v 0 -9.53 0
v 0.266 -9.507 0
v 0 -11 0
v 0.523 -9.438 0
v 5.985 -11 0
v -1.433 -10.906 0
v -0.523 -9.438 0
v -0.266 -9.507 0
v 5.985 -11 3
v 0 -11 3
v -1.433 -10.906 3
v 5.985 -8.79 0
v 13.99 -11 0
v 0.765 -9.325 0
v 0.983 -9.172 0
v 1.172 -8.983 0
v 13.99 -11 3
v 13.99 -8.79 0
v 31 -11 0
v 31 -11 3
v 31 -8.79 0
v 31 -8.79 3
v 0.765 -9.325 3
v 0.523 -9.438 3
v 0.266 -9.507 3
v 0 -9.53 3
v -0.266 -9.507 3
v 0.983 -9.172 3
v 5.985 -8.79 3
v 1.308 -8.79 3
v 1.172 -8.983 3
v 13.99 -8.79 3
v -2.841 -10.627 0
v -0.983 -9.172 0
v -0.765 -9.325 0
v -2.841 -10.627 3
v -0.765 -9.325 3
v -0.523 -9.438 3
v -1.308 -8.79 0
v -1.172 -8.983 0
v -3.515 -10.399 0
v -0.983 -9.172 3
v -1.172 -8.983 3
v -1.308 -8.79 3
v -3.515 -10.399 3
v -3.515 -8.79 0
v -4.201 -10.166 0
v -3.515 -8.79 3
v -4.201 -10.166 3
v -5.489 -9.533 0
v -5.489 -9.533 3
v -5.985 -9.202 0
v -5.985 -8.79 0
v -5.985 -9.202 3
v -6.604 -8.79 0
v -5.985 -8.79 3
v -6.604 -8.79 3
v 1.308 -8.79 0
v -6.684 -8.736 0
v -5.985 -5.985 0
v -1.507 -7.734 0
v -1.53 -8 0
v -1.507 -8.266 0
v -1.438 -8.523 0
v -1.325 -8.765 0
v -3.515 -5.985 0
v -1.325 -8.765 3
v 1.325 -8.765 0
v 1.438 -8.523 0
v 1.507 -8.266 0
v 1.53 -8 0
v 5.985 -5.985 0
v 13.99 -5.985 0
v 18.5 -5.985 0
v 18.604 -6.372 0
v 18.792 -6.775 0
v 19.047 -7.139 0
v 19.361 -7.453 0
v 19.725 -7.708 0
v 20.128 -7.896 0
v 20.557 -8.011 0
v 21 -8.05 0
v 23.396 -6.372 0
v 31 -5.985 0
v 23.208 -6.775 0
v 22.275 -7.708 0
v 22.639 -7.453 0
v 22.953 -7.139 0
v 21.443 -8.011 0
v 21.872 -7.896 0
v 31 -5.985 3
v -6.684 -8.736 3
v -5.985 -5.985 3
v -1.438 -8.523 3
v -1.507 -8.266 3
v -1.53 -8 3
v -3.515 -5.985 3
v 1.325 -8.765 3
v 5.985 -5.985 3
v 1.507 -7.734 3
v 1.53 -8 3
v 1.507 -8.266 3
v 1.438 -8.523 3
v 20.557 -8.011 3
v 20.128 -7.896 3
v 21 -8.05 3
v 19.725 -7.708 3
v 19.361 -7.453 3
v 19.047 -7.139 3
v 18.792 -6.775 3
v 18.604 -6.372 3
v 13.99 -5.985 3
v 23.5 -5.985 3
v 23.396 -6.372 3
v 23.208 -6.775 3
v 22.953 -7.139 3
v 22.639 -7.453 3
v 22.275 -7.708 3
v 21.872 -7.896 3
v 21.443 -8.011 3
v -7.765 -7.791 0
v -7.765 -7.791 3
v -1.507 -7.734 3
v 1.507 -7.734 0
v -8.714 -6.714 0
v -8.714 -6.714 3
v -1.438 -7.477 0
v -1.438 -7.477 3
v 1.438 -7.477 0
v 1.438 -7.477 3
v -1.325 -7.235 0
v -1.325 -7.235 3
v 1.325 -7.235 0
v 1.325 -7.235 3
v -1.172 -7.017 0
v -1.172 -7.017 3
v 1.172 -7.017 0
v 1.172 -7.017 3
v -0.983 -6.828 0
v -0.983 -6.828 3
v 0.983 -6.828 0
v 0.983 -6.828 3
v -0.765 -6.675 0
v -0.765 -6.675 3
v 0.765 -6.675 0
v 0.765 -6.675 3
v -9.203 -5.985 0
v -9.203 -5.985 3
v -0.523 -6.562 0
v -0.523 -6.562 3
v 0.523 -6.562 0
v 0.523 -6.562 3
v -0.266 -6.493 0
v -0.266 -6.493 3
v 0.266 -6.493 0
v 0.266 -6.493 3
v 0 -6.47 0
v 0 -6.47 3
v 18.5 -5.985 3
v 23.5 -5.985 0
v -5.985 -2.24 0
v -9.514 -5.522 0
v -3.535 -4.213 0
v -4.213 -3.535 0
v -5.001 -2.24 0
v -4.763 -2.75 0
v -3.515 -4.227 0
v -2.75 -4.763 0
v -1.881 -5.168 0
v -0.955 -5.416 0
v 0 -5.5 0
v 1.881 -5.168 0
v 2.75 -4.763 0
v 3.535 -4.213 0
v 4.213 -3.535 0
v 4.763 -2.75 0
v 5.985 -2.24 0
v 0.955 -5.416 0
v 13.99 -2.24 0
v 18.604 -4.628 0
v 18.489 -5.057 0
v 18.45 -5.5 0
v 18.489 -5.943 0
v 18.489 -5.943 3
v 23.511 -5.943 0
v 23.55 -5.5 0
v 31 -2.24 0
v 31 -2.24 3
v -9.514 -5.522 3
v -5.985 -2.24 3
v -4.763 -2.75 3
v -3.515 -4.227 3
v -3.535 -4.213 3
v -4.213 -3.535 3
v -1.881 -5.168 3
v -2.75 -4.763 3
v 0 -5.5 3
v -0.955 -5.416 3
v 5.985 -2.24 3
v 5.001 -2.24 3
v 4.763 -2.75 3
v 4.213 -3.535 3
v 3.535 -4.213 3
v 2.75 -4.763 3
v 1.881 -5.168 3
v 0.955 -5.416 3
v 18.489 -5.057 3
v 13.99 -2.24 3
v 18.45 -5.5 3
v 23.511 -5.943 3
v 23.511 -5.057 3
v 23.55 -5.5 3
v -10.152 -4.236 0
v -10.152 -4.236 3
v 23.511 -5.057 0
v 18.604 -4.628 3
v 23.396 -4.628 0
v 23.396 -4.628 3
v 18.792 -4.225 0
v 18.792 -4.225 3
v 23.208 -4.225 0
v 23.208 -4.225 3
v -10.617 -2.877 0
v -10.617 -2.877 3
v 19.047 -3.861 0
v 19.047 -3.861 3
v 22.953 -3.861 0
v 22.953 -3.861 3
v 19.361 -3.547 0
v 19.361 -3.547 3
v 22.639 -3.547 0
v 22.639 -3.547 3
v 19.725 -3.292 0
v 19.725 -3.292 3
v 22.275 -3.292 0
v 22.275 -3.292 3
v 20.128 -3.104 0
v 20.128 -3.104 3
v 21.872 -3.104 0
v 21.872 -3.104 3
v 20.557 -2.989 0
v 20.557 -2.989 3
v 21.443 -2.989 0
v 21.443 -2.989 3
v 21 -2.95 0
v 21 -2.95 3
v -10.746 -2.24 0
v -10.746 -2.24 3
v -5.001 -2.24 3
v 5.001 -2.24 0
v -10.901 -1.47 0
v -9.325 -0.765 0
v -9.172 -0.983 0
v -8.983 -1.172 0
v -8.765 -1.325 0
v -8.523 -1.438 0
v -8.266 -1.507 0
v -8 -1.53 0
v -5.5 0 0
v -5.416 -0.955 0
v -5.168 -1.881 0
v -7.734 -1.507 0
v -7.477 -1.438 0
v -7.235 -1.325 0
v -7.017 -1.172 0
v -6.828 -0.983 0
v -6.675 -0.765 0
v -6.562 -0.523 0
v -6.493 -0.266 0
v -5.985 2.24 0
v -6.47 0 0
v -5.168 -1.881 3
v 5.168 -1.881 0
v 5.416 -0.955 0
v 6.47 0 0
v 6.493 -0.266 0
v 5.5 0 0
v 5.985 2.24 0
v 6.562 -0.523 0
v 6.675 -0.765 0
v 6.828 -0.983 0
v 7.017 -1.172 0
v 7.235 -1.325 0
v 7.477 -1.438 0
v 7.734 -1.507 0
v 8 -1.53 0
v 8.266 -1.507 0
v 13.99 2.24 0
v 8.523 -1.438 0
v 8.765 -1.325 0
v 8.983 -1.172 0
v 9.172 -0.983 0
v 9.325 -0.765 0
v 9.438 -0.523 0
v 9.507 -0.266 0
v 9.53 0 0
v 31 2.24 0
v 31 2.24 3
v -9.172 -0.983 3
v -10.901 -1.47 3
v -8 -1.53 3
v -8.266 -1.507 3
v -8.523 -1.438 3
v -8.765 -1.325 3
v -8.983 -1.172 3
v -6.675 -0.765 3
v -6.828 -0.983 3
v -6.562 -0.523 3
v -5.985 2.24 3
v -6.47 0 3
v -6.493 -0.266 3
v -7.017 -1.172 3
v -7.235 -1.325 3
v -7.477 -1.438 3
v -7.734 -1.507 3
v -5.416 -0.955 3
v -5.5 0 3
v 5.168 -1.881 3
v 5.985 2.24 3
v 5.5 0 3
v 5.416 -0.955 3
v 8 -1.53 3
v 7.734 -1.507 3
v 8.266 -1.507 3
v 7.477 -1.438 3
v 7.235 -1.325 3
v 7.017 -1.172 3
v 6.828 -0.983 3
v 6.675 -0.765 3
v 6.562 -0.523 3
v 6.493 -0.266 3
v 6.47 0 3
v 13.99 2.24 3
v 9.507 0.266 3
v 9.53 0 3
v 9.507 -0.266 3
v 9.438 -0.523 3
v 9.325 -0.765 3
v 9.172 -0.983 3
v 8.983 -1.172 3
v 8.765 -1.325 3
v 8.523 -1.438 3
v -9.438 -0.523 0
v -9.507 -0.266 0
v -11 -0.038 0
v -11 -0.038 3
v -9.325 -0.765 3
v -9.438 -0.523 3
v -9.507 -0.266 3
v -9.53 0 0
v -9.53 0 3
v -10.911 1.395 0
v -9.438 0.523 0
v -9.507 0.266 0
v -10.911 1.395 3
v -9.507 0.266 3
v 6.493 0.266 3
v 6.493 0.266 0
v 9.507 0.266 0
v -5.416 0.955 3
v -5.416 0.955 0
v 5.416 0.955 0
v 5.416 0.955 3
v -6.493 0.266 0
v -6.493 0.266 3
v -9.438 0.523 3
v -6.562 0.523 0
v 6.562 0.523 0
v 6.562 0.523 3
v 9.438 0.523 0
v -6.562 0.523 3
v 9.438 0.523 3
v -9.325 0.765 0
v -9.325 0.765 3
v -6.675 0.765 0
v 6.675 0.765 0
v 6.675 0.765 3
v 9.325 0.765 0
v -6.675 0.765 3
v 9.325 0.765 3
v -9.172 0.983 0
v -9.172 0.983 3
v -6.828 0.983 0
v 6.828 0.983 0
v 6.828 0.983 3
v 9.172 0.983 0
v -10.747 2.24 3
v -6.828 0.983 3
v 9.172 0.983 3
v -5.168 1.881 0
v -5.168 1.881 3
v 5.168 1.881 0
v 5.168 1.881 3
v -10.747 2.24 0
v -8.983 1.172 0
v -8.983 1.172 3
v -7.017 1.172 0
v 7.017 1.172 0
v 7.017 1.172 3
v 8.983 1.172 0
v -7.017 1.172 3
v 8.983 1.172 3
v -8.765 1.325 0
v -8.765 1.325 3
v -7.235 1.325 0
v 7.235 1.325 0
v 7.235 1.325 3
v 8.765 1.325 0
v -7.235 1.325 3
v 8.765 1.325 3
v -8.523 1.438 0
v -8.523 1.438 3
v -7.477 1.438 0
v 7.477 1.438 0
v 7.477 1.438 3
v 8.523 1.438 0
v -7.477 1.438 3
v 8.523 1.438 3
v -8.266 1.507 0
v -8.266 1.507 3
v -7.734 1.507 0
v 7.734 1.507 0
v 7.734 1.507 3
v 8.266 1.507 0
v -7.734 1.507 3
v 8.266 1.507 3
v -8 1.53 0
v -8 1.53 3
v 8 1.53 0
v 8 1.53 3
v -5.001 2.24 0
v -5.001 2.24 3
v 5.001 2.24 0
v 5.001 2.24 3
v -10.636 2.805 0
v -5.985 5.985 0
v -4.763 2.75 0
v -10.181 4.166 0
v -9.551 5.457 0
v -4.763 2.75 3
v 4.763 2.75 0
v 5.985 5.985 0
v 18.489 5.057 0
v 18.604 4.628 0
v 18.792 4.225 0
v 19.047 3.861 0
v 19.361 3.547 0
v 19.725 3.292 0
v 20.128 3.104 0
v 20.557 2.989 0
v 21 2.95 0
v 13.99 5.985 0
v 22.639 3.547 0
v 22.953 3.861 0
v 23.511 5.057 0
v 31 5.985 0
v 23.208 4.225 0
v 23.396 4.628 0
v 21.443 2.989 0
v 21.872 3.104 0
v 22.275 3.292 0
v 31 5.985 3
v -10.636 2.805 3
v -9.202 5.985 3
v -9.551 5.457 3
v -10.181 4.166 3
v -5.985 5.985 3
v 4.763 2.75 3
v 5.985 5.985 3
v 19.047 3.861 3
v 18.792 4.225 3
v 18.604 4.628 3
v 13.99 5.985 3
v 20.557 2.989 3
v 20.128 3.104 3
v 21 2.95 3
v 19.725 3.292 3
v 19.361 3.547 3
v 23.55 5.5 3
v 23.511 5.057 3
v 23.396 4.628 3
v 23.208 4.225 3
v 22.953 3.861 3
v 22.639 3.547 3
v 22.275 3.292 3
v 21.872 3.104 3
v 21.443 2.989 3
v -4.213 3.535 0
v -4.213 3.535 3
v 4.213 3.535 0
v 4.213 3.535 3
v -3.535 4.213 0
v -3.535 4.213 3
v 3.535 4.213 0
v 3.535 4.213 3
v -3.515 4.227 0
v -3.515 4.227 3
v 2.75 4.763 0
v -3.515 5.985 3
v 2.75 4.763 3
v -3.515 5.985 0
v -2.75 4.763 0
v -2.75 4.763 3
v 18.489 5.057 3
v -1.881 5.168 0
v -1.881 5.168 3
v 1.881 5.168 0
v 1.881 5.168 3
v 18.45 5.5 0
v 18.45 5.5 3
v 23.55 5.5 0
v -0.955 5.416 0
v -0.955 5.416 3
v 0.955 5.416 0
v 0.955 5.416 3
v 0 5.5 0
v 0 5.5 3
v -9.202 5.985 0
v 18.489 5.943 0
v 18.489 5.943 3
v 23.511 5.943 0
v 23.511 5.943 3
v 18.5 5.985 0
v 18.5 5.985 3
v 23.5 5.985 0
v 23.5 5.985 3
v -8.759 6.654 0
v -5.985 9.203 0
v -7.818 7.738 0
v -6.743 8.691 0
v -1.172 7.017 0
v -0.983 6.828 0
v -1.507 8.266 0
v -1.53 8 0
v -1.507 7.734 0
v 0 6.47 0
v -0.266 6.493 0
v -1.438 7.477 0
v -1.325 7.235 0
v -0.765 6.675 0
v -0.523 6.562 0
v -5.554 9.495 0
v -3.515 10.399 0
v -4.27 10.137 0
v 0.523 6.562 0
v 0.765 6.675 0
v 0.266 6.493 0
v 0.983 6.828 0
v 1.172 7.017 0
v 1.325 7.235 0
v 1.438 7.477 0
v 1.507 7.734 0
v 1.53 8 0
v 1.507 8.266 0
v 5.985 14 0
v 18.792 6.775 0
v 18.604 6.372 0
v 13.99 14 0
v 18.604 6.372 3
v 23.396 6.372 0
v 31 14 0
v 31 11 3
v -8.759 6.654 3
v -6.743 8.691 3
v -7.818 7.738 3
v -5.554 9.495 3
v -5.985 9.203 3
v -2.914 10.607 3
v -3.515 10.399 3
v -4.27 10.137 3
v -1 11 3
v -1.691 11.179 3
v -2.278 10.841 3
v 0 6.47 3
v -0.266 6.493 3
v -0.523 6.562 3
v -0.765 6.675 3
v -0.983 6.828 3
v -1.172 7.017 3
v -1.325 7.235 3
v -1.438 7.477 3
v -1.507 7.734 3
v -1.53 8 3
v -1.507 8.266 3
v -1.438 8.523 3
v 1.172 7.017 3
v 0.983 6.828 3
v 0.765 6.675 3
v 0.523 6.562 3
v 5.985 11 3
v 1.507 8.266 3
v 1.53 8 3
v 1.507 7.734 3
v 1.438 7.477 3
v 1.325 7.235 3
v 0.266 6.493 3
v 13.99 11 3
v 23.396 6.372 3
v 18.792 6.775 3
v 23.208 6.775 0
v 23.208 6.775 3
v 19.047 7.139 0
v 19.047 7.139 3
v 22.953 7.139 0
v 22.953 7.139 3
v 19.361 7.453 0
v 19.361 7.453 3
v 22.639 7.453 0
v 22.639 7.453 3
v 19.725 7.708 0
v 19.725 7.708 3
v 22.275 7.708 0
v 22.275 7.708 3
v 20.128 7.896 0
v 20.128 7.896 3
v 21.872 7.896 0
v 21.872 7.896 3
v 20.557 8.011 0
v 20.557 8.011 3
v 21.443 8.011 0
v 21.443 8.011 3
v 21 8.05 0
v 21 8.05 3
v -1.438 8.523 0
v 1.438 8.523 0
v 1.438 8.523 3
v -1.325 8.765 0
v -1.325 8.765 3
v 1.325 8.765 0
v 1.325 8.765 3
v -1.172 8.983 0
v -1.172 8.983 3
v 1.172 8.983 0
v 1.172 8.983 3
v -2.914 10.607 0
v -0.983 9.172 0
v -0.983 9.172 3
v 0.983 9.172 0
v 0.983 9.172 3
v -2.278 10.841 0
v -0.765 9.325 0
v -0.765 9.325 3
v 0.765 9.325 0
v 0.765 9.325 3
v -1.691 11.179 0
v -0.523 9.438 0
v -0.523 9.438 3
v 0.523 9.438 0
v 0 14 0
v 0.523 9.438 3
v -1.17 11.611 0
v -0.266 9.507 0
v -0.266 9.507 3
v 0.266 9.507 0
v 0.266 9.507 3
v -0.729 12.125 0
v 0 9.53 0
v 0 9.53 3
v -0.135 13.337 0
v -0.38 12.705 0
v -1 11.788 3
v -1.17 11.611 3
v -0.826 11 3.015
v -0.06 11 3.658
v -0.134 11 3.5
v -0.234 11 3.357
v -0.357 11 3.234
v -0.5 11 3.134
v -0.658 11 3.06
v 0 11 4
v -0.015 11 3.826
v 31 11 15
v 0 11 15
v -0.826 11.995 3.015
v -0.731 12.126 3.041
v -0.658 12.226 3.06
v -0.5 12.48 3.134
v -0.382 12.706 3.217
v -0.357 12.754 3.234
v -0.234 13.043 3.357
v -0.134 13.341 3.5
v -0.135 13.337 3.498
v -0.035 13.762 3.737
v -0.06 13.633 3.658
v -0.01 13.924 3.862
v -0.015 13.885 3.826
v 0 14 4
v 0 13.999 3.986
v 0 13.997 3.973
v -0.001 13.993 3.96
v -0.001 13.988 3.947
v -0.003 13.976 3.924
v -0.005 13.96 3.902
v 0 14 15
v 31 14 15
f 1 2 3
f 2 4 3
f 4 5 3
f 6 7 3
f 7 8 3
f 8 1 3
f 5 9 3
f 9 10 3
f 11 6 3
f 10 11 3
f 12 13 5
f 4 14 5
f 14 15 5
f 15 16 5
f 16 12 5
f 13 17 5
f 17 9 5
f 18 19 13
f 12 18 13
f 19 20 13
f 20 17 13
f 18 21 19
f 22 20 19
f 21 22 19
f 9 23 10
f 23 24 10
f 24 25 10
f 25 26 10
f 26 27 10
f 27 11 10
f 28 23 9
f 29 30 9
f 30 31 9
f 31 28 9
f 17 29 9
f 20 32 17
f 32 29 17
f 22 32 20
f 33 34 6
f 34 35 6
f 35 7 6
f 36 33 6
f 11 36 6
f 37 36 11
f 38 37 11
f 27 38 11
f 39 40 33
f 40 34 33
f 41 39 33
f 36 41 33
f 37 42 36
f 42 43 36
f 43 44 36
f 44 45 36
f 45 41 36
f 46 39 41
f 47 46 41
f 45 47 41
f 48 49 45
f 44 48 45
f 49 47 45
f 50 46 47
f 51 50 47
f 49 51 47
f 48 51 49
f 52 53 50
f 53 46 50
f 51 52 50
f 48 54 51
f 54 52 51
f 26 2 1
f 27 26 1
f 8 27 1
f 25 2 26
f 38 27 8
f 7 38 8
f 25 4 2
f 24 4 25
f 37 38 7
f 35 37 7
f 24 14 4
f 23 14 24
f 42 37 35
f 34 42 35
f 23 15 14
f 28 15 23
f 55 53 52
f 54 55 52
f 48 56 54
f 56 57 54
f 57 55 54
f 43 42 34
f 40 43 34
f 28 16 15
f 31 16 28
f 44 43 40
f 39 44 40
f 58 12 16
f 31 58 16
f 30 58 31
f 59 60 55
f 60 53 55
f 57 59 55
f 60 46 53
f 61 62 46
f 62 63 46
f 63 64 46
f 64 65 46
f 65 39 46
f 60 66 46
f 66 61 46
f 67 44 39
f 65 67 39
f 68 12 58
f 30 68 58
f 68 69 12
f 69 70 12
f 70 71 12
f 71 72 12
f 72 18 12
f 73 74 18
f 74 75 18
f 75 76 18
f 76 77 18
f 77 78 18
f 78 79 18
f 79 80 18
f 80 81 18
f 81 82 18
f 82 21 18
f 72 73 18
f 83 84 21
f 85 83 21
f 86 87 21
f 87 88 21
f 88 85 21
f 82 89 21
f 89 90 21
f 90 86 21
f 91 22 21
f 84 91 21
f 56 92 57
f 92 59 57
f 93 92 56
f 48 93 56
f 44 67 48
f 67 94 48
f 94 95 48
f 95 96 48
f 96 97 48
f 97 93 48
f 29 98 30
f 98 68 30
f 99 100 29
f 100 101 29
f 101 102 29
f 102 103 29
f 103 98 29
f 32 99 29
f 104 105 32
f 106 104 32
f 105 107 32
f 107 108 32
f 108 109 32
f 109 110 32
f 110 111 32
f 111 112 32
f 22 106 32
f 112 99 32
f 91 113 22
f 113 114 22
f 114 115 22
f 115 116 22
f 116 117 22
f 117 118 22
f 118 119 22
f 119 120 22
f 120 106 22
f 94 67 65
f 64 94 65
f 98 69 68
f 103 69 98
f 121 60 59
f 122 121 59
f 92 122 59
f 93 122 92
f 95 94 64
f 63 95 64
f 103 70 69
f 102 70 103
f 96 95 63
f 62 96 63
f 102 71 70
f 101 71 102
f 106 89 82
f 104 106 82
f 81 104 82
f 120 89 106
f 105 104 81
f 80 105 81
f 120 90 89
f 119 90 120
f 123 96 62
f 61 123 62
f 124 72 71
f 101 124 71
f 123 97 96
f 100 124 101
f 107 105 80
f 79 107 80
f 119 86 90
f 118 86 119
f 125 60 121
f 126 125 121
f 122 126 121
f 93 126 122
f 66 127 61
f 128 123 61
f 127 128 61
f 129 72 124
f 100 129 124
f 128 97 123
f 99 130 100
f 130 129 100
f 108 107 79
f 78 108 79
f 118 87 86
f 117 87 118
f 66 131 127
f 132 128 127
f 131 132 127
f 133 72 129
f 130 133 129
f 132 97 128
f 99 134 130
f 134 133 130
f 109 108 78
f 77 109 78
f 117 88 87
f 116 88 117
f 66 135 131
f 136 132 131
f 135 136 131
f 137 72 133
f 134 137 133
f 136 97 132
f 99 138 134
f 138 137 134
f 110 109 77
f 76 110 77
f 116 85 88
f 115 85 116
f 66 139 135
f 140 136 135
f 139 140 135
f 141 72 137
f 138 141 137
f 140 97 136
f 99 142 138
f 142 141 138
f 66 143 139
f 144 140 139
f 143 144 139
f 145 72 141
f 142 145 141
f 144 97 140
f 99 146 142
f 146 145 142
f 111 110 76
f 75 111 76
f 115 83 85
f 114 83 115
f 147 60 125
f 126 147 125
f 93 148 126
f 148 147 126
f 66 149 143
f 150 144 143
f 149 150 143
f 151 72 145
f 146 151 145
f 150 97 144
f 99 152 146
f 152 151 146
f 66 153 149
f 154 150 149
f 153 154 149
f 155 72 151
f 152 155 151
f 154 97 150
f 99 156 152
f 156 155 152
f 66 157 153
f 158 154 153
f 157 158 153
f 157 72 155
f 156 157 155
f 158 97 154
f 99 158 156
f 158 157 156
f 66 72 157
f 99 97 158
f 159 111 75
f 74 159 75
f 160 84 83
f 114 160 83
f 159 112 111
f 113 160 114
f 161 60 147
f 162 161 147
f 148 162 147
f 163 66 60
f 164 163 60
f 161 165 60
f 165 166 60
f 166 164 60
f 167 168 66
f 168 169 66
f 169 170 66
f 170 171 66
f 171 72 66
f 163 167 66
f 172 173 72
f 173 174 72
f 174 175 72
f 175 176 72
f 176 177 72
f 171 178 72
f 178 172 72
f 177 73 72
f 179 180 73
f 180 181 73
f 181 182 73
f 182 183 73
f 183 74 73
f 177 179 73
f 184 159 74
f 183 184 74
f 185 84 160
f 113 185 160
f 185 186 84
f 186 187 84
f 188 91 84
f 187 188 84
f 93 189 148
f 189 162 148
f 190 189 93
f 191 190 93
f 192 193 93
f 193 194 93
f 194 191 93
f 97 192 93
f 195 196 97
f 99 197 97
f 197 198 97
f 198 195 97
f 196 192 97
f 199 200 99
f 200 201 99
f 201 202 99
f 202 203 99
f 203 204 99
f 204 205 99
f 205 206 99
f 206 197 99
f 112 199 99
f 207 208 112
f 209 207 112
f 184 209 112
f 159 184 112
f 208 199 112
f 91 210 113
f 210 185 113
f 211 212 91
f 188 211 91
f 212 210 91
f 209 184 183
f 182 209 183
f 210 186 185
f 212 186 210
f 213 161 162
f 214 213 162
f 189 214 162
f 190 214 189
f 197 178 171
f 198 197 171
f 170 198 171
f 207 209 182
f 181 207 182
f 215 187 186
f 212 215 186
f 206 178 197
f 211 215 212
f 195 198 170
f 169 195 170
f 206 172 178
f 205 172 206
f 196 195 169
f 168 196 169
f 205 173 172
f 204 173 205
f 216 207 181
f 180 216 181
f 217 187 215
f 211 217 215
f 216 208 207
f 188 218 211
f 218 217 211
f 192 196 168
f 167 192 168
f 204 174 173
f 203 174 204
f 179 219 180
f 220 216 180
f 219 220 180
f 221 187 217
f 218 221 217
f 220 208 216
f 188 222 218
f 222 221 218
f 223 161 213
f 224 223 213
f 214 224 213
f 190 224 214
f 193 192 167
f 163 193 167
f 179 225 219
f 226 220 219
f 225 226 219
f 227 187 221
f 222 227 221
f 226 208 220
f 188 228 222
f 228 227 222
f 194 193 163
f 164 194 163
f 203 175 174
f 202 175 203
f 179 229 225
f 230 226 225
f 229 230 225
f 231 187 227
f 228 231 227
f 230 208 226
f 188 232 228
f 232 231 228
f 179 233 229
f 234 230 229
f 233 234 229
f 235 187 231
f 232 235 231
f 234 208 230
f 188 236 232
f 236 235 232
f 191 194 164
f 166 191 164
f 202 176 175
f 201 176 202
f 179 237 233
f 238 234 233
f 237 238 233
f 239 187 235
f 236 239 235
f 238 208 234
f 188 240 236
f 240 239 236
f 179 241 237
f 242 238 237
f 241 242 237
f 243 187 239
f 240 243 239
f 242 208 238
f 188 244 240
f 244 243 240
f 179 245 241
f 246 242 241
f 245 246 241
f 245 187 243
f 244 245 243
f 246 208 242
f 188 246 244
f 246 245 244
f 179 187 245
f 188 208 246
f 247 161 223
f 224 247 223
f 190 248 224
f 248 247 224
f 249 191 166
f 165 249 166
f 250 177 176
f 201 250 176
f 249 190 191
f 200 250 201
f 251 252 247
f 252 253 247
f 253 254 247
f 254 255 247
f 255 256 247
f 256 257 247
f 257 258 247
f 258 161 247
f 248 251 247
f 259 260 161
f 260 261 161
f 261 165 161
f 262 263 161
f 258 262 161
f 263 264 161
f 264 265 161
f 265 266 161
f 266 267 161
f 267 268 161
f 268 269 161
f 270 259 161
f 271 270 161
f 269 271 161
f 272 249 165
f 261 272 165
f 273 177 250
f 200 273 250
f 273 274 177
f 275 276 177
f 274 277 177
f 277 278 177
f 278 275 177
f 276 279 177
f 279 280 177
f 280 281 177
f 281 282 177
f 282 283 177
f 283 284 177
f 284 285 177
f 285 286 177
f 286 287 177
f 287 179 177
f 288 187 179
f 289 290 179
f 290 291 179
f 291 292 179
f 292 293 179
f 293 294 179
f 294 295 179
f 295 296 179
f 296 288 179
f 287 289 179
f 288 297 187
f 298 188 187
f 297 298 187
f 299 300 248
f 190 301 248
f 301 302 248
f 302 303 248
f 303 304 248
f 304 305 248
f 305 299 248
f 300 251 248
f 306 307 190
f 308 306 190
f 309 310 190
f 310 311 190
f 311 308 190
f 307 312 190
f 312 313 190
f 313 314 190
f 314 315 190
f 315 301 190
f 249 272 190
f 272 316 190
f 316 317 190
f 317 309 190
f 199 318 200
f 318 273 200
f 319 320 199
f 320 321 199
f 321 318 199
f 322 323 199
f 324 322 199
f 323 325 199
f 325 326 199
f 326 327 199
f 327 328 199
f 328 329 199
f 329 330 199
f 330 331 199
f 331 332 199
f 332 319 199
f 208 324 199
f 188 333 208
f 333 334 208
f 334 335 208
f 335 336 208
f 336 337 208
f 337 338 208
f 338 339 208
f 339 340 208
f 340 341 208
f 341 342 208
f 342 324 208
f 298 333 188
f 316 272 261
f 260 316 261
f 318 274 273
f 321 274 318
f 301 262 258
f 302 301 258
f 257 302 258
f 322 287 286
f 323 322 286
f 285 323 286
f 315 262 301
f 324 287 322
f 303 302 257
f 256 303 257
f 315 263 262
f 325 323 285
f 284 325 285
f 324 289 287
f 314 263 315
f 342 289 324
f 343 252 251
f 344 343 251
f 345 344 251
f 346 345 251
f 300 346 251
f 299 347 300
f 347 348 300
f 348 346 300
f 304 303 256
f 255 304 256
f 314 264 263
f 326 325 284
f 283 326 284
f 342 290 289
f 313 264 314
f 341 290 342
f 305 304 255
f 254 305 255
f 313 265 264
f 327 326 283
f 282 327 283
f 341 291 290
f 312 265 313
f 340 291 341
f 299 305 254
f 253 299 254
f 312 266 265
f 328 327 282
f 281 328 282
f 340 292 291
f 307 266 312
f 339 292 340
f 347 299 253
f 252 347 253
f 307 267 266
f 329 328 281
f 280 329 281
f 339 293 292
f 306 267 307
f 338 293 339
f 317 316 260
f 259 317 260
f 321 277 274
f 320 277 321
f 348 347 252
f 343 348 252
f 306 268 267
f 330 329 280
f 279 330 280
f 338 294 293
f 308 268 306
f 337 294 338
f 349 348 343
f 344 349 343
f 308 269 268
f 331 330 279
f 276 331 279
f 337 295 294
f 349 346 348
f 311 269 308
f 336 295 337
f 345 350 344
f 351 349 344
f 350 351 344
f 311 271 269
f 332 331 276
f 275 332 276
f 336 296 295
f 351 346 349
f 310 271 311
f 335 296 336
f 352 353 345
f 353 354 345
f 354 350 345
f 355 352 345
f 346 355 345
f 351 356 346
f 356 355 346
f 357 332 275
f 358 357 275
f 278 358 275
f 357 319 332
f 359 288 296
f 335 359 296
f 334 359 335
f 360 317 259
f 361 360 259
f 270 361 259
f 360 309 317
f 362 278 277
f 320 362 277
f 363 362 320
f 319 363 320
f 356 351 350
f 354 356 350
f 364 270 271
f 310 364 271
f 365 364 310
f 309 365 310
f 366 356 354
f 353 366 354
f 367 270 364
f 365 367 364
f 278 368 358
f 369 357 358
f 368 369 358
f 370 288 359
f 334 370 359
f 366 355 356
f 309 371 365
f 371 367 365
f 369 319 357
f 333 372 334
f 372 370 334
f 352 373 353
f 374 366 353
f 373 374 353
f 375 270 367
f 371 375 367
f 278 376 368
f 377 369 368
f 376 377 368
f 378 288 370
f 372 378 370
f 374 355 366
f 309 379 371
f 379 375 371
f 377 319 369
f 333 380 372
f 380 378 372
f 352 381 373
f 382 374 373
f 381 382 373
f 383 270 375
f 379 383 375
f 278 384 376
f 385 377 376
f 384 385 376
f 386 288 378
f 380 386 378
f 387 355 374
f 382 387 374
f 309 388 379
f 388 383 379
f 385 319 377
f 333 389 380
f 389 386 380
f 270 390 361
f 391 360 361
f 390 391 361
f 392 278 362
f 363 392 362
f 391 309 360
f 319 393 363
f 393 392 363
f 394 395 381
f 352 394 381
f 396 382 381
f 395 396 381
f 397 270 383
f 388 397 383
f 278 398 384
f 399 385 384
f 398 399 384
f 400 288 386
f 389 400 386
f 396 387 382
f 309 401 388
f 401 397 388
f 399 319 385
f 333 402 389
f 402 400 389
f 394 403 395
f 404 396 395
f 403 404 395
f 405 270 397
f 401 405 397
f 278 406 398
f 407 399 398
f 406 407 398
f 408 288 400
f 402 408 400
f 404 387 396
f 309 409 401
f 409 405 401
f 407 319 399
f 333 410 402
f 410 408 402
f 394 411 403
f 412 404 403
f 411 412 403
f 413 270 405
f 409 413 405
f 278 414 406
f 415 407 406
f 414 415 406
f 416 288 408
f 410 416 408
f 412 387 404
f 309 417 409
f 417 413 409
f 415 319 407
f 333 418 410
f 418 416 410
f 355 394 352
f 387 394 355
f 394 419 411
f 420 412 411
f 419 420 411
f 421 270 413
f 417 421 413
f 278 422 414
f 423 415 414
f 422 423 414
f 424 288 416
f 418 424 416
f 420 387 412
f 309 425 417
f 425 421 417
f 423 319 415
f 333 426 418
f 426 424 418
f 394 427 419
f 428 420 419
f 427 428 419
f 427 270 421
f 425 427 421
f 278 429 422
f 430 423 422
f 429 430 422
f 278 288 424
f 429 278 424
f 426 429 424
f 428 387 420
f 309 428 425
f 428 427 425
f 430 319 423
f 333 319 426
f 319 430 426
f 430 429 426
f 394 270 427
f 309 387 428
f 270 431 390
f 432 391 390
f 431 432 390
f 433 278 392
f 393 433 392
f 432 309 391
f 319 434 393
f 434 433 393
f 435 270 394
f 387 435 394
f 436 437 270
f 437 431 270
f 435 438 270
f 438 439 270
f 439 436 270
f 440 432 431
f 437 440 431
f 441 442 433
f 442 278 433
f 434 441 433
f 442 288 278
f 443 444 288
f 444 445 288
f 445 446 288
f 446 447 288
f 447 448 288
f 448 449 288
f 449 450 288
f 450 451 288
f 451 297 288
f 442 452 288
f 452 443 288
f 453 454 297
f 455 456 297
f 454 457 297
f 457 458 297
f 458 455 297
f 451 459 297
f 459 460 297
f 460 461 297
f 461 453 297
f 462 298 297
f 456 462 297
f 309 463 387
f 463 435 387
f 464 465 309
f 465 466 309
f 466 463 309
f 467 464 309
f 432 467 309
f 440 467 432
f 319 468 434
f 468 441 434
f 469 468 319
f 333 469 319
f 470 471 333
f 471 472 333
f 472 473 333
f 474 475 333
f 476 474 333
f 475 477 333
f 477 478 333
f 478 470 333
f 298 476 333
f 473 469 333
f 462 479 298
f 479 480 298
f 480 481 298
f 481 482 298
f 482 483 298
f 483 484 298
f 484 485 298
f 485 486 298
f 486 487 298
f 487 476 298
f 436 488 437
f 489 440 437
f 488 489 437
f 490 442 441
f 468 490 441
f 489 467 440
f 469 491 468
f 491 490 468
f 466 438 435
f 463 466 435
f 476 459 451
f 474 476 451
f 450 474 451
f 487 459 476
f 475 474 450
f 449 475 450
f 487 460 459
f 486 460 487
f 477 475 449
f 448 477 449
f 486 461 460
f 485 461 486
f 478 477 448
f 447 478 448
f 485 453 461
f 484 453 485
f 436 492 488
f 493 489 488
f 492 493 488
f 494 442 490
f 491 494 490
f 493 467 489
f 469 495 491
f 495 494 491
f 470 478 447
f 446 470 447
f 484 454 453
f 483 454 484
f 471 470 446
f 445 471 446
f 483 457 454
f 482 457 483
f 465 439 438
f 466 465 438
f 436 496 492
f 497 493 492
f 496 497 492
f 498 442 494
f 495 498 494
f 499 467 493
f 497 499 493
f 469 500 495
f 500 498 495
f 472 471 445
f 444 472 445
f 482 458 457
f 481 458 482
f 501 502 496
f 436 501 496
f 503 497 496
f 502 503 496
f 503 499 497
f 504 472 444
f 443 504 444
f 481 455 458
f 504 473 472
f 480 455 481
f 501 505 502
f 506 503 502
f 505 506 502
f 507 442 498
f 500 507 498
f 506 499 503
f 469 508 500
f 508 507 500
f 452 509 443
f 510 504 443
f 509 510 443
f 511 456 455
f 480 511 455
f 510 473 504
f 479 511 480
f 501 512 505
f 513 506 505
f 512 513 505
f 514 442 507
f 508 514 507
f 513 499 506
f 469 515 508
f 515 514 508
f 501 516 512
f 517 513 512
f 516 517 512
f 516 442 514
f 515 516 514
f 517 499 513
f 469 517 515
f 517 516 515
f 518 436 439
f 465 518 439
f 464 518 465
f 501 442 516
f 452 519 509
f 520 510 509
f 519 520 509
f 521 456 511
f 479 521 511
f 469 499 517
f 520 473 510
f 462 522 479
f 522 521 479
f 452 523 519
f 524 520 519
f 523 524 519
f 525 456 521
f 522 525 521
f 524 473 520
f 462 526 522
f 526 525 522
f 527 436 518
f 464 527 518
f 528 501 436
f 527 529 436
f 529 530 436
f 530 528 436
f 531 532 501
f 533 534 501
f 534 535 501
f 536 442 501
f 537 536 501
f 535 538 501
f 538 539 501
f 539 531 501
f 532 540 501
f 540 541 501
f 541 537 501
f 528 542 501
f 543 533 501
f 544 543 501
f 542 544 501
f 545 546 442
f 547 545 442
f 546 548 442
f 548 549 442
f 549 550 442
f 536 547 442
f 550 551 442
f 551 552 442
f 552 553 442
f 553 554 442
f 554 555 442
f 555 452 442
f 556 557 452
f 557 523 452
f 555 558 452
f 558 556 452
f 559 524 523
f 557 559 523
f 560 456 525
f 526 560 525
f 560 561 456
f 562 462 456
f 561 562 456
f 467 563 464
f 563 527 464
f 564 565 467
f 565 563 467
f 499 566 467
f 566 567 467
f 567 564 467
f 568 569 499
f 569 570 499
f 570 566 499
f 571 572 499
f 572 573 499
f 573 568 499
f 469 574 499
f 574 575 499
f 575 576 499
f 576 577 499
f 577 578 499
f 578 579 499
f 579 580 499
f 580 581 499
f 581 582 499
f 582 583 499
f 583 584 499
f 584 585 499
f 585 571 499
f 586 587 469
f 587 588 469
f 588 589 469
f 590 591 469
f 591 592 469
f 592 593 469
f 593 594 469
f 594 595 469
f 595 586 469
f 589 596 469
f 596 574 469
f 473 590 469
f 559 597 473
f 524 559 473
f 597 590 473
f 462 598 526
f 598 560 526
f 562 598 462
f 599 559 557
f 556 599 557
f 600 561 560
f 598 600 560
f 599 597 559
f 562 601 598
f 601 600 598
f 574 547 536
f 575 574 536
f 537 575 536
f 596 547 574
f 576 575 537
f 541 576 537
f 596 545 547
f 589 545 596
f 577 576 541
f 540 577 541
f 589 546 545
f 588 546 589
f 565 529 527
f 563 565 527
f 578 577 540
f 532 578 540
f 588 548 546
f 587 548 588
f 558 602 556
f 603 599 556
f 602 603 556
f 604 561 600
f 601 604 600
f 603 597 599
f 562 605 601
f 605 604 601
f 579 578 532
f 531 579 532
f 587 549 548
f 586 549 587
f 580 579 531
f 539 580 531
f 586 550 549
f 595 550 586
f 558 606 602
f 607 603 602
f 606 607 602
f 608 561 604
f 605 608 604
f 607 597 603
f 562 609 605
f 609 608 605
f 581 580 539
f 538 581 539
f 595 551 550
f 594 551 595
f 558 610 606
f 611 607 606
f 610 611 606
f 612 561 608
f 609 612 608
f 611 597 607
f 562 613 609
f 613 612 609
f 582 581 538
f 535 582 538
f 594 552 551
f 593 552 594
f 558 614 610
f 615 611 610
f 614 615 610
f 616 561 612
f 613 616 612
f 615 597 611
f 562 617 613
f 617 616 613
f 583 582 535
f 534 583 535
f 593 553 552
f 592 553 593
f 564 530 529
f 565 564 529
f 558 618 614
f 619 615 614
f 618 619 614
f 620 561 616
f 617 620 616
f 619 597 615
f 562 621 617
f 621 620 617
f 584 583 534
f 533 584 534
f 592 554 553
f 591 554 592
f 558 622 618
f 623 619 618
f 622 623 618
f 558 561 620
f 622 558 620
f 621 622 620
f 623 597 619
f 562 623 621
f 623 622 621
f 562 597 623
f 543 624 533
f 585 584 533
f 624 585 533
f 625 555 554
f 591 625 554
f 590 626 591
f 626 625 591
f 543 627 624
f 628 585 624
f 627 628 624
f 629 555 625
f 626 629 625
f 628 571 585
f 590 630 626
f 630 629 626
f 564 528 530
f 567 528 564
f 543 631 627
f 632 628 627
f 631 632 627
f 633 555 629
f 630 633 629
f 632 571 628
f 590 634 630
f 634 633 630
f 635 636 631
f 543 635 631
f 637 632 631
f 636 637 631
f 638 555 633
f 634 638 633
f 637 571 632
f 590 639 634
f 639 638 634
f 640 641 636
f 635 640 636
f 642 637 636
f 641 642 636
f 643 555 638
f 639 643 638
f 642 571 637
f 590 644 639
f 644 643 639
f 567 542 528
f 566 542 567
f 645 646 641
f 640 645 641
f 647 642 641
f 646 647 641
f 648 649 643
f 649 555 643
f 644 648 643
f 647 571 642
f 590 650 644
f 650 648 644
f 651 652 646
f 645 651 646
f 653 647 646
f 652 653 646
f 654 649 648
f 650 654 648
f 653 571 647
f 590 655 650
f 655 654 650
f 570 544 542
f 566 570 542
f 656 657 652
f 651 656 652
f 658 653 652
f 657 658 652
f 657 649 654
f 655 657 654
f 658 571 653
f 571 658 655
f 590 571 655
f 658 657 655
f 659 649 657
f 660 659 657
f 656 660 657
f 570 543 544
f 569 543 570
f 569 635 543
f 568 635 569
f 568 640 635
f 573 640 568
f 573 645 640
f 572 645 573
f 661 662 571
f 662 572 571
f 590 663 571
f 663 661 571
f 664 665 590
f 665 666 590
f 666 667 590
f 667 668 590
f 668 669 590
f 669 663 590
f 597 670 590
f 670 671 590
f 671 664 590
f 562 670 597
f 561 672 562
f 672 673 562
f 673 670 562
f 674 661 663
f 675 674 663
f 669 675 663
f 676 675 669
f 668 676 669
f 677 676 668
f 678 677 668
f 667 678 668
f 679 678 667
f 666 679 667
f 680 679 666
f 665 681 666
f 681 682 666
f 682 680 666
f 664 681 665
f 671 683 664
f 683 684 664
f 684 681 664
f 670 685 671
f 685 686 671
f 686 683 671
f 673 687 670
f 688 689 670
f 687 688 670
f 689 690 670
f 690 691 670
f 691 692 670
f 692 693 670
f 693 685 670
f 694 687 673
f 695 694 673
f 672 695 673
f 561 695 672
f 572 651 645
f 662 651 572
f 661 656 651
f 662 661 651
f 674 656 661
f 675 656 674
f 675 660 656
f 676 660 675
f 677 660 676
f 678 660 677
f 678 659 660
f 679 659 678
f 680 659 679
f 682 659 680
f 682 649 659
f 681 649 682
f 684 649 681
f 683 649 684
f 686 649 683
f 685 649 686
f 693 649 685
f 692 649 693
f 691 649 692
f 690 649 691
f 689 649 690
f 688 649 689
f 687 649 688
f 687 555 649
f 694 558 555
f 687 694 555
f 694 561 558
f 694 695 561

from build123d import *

# Parameters (mm, degrees)
SKETCH1_R           = 1.53
SKETCH1_R_2         = 5.5
BOSS_EXTRUDE1_DEPTH = 3
SKETCH2_R           = 2.55
CUT_EXTRUDE1_DEPTH  = 10
SKETCH4_W           = 31
SKETCH4_H           = 3
BOSS_EXTRUDE2_DEPTH = 15
FILLET1_R           = 4
FILLET4_R           = 1


with BuildPart() as part:
    # Sketch1 → Boss-Extrude1 (new body)
    with BuildSketch(Plane.XY):
        with BuildLine():
            Line((0, -11), (11, -11))
            Line((11, -11), (31, -11))
            Line((31, -11), (31, 11))
            Line((31, 11), (11, 11))
            Line((11, 11), (0, 11))
            ThreePointArc((0, 11), (-11, 0), (0, -11))
        make_face()
        with Locations((0, 8)):
            Circle(SKETCH1_R, mode=Mode.SUBTRACT)
        with Locations((8, 0)):
            Circle(SKETCH1_R, mode=Mode.SUBTRACT)
        with Locations((0, -8)):
            Circle(SKETCH1_R, mode=Mode.SUBTRACT)
        with Locations((-8, 0)):
            Circle(SKETCH1_R, mode=Mode.SUBTRACT)
        Circle(SKETCH1_R_2, mode=Mode.SUBTRACT)
    extrude(amount=BOSS_EXTRUDE1_DEPTH)

    # Sketch2 → Cut-Extrude1 (cut)
    with BuildSketch(Plane.XY):
        with Locations((21, 5.5)):
            Circle(SKETCH2_R)
        with Locations(Location((21, -5.5, 0), (0, 0, 180))):
            Circle(SKETCH2_R)
    extrude(amount=CUT_EXTRUDE1_DEPTH, mode=Mode.SUBTRACT)

    # Sketch4 → Boss-Extrude2 (add)
    with BuildSketch(Plane.XY):
        with Locations((15.5, 12.5)):
            Rectangle(SKETCH4_W, SKETCH4_H)
    extrude(amount=BOSS_EXTRUDE2_DEPTH)

    # Fillet1
    # the kernel refuses this fillet: 4 mm, written as the material it adds along each edge
    with BuildSketch(Plane(origin=(0, 11, 0), x_dir=(0, 1, 0), z_dir=(0, 0, 1))) as fillet1_piece_1:
        with BuildLine():
            CenterArc((3.464285714, 3.972963475), FILLET1_R, 195.358885581, 67.975687163)
            ThreePointArc((-0.392857143, 2.913506549), (-0.098656701, 1.469936831), (0, 0))
            Line((0, 0), (3, 0))
        make_face()
    extrude(amount=3)

    # Fillet4
    # the kernel refuses this fillet: 1 mm, written as the material it adds along each edge
    with BuildSketch(Plane(origin=(0, 11, 3), x_dir=(-1, 0, 0), z_dir=(0, 1, 0))) as fillet4_piece_1_section:
        with BuildLine():
            CenterArc((FILLET4_R, FILLET4_R), FILLET4_R, 180, 90)
            Line((0, FILLET4_R), (0, 0))
            Line((0, 0), (FILLET4_R, 0))
        make_face()
    fillet4_piece_1 = extrude(amount=3, mode=Mode.PRIVATE)
    fillet4_piece_1 = fillet4_piece_1 - Plane(origin=(-3.972963475, 14.464285714, 3.249866194), x_dir=(0, 1, 0), z_dir=(0, 0, -1)) * Cylinder(4, 10, mode=Mode.PRIVATE)
    add(fillet4_piece_1)


solid = part.part
